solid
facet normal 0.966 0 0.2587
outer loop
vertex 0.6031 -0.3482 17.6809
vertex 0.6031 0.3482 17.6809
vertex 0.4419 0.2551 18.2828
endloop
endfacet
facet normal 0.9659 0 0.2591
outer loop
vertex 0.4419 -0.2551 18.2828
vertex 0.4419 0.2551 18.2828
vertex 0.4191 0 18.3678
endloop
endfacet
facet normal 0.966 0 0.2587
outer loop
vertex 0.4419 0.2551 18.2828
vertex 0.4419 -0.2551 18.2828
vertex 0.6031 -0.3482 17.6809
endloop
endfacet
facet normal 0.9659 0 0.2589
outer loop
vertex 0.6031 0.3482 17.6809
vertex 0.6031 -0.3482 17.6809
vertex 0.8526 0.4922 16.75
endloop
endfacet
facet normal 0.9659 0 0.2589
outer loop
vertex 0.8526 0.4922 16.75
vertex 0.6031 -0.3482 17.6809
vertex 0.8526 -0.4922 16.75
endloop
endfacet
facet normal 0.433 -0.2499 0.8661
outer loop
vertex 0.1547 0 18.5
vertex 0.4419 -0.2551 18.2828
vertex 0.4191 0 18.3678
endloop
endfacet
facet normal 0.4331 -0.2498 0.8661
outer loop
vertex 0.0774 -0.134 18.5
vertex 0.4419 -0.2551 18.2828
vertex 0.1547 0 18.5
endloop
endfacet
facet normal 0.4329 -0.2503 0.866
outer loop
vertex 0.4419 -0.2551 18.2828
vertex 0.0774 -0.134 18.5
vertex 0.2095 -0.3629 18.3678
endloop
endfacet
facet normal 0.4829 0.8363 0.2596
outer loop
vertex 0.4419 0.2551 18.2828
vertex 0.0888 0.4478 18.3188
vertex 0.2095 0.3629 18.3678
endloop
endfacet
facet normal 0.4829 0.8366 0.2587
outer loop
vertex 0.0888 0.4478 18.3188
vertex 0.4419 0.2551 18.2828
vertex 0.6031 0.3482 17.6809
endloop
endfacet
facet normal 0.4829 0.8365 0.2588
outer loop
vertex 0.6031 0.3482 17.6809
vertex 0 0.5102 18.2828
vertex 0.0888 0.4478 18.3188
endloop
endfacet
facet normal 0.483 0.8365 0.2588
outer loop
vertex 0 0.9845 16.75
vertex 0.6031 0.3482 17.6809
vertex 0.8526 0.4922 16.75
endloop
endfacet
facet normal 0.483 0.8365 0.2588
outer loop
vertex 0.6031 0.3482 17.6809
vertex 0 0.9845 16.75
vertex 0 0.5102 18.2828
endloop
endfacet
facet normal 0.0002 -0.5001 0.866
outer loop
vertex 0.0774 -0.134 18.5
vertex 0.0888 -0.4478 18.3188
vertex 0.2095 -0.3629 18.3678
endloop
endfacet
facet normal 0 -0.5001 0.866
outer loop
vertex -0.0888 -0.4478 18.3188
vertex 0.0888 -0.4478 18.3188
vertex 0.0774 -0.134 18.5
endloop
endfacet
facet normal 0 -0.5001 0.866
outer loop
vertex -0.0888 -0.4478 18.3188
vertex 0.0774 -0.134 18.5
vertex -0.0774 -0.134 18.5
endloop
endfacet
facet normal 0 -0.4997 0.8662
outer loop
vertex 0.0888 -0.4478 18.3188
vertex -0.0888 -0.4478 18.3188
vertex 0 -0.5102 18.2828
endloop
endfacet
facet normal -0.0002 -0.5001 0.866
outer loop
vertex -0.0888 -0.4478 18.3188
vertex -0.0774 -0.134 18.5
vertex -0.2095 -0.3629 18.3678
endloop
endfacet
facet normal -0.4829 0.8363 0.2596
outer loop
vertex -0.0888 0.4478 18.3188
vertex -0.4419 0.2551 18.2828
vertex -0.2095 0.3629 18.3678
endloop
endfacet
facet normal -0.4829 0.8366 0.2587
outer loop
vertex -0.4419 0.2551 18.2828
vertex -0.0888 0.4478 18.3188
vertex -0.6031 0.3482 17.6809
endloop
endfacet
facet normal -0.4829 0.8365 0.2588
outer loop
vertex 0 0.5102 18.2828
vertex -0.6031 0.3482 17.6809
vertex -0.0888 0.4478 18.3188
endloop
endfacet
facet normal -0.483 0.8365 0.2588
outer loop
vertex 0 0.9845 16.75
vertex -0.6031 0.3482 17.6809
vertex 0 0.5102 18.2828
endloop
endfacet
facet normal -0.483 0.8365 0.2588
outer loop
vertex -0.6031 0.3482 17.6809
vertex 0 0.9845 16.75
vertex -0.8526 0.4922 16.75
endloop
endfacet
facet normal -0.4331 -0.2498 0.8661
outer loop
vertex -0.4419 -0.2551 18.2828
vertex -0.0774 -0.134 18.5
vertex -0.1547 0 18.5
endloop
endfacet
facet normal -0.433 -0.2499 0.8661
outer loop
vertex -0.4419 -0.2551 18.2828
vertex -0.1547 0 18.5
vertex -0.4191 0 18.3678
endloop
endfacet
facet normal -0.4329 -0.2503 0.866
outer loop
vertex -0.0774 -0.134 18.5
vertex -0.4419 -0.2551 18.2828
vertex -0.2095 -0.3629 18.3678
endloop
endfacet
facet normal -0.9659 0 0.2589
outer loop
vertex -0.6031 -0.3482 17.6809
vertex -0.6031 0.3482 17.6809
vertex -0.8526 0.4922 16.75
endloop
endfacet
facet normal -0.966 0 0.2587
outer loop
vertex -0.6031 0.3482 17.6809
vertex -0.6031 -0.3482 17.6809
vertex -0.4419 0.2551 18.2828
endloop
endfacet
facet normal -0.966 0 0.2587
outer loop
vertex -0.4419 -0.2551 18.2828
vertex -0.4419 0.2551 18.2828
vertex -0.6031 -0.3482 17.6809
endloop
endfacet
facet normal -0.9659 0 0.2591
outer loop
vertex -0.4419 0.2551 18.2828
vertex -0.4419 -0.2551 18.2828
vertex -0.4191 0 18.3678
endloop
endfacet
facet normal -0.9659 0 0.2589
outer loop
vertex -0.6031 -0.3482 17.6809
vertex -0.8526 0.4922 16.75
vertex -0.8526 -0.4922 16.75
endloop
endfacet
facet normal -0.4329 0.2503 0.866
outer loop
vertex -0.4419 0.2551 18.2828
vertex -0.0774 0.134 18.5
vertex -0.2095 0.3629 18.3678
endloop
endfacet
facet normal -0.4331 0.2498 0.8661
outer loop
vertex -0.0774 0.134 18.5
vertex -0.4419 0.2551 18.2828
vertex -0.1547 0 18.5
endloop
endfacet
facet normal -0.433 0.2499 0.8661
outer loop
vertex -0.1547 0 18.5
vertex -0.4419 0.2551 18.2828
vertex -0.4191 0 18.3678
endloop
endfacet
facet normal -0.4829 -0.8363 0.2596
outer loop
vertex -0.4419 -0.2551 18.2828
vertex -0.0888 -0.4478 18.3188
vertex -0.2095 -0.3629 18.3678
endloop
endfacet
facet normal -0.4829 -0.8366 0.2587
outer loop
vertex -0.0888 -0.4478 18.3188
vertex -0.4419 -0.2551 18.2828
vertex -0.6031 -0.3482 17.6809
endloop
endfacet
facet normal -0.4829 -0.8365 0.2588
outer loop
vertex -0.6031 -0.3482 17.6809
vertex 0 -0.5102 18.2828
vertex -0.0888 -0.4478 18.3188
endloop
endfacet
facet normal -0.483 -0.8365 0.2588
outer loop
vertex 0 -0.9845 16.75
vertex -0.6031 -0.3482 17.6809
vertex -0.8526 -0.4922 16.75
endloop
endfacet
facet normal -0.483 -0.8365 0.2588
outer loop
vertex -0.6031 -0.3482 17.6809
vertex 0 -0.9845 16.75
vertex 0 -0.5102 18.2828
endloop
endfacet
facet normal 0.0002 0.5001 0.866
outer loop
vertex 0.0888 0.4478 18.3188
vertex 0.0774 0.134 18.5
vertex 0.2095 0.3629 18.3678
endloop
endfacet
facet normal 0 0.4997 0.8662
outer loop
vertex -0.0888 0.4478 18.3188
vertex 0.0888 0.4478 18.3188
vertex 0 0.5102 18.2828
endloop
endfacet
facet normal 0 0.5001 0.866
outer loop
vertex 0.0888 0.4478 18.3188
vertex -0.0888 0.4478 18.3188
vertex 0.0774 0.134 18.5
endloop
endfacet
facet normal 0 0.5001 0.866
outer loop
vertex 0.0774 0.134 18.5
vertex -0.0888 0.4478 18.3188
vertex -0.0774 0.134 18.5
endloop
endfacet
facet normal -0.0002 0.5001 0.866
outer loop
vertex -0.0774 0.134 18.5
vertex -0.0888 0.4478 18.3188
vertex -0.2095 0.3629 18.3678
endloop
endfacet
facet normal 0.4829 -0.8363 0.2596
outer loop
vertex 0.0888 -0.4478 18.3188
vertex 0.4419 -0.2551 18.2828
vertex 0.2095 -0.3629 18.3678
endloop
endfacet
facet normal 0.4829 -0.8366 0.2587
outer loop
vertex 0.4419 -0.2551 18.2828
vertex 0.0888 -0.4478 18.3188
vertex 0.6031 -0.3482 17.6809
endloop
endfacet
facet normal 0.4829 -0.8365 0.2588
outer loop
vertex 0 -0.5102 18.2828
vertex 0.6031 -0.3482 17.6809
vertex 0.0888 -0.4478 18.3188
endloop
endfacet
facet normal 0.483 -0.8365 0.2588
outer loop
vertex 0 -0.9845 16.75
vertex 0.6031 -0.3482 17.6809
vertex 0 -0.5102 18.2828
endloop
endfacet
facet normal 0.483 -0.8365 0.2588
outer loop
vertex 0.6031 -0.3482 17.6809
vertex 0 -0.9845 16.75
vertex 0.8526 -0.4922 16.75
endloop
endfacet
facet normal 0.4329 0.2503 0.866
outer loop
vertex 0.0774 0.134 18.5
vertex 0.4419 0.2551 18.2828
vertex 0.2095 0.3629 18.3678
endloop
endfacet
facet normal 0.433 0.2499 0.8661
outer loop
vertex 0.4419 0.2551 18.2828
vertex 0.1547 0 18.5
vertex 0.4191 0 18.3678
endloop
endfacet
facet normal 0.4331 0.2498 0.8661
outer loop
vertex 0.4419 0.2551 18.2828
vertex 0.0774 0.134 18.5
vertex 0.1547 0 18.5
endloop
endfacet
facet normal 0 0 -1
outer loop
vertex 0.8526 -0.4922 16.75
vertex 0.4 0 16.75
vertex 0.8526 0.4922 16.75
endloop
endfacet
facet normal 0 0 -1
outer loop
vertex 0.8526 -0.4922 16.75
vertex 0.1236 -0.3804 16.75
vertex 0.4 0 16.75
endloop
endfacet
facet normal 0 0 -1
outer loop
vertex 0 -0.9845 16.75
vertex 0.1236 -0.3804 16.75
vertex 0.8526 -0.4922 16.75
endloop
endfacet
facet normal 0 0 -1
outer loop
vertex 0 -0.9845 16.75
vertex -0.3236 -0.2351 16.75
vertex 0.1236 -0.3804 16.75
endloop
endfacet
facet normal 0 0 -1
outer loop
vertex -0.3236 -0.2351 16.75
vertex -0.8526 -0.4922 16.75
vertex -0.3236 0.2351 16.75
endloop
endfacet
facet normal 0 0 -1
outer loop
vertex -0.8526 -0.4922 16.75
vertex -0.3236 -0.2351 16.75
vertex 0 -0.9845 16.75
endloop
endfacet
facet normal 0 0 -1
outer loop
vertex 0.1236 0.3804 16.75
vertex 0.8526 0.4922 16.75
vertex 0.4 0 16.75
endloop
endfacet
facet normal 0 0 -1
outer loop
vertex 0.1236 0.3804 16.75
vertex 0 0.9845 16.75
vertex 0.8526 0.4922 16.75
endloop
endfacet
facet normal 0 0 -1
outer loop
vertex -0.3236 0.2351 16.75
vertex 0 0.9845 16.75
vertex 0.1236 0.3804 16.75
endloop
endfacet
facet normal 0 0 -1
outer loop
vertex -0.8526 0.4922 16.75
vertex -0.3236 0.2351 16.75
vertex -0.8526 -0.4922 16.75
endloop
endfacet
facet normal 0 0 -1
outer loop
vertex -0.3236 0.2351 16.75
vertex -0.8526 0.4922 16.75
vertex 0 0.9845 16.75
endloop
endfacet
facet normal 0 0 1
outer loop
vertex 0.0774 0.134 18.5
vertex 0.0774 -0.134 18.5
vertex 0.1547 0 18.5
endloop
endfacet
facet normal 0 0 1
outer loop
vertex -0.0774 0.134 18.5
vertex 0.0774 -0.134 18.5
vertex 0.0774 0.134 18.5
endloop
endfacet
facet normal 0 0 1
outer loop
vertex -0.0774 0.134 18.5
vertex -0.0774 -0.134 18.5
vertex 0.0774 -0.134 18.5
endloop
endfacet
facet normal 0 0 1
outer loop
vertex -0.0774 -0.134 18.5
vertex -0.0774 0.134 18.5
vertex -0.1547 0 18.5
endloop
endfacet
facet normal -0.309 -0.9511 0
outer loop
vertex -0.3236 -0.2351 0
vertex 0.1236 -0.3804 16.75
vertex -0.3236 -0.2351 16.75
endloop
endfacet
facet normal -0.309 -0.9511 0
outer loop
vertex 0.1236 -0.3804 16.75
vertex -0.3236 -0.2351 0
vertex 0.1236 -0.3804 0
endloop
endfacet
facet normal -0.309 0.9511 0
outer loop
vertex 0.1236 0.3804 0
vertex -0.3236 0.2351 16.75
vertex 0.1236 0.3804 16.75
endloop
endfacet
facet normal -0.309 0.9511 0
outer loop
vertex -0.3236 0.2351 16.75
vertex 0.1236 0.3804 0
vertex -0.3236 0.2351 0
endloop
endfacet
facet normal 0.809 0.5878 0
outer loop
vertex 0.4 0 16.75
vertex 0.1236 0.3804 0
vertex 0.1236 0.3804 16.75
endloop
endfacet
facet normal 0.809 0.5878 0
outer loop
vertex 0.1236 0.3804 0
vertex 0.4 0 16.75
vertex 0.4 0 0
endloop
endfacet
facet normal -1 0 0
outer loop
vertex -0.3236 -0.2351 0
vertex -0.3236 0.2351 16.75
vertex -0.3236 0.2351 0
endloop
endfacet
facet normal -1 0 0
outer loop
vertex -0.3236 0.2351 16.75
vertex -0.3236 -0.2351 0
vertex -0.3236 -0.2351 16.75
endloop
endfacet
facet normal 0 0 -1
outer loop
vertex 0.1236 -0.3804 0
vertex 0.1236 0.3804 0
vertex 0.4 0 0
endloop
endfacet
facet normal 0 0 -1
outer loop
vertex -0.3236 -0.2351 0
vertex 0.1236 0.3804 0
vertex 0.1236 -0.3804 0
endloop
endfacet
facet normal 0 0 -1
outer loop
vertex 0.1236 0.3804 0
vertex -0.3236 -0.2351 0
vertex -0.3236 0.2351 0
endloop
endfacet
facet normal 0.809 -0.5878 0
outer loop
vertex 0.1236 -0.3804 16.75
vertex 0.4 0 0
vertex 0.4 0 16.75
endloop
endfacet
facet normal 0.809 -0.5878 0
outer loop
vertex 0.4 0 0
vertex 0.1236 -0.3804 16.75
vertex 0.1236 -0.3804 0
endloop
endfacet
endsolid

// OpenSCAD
union(){
        cylinder(17, 0.4, 0.4);
    
        translate([0, 0, 18])
        difference(){
            cube([3/sqrt(2), 3/sqrt(2), 2.5], center = true);
            
            for(i = [0:1:6]){
                    rotate([0, -15, 60*i])
                    translate([2,0,0])
                    cube([3,3,4], center=true);
                
                    rotate([0, -60, -60*(i)-30])
                    translate([2,0,0])
                    cube([3,3,4], center=true);
            }
           
           translate([0, 0, 2.5])
           cube([3,3,4], center=true);
            
        }
        
}
